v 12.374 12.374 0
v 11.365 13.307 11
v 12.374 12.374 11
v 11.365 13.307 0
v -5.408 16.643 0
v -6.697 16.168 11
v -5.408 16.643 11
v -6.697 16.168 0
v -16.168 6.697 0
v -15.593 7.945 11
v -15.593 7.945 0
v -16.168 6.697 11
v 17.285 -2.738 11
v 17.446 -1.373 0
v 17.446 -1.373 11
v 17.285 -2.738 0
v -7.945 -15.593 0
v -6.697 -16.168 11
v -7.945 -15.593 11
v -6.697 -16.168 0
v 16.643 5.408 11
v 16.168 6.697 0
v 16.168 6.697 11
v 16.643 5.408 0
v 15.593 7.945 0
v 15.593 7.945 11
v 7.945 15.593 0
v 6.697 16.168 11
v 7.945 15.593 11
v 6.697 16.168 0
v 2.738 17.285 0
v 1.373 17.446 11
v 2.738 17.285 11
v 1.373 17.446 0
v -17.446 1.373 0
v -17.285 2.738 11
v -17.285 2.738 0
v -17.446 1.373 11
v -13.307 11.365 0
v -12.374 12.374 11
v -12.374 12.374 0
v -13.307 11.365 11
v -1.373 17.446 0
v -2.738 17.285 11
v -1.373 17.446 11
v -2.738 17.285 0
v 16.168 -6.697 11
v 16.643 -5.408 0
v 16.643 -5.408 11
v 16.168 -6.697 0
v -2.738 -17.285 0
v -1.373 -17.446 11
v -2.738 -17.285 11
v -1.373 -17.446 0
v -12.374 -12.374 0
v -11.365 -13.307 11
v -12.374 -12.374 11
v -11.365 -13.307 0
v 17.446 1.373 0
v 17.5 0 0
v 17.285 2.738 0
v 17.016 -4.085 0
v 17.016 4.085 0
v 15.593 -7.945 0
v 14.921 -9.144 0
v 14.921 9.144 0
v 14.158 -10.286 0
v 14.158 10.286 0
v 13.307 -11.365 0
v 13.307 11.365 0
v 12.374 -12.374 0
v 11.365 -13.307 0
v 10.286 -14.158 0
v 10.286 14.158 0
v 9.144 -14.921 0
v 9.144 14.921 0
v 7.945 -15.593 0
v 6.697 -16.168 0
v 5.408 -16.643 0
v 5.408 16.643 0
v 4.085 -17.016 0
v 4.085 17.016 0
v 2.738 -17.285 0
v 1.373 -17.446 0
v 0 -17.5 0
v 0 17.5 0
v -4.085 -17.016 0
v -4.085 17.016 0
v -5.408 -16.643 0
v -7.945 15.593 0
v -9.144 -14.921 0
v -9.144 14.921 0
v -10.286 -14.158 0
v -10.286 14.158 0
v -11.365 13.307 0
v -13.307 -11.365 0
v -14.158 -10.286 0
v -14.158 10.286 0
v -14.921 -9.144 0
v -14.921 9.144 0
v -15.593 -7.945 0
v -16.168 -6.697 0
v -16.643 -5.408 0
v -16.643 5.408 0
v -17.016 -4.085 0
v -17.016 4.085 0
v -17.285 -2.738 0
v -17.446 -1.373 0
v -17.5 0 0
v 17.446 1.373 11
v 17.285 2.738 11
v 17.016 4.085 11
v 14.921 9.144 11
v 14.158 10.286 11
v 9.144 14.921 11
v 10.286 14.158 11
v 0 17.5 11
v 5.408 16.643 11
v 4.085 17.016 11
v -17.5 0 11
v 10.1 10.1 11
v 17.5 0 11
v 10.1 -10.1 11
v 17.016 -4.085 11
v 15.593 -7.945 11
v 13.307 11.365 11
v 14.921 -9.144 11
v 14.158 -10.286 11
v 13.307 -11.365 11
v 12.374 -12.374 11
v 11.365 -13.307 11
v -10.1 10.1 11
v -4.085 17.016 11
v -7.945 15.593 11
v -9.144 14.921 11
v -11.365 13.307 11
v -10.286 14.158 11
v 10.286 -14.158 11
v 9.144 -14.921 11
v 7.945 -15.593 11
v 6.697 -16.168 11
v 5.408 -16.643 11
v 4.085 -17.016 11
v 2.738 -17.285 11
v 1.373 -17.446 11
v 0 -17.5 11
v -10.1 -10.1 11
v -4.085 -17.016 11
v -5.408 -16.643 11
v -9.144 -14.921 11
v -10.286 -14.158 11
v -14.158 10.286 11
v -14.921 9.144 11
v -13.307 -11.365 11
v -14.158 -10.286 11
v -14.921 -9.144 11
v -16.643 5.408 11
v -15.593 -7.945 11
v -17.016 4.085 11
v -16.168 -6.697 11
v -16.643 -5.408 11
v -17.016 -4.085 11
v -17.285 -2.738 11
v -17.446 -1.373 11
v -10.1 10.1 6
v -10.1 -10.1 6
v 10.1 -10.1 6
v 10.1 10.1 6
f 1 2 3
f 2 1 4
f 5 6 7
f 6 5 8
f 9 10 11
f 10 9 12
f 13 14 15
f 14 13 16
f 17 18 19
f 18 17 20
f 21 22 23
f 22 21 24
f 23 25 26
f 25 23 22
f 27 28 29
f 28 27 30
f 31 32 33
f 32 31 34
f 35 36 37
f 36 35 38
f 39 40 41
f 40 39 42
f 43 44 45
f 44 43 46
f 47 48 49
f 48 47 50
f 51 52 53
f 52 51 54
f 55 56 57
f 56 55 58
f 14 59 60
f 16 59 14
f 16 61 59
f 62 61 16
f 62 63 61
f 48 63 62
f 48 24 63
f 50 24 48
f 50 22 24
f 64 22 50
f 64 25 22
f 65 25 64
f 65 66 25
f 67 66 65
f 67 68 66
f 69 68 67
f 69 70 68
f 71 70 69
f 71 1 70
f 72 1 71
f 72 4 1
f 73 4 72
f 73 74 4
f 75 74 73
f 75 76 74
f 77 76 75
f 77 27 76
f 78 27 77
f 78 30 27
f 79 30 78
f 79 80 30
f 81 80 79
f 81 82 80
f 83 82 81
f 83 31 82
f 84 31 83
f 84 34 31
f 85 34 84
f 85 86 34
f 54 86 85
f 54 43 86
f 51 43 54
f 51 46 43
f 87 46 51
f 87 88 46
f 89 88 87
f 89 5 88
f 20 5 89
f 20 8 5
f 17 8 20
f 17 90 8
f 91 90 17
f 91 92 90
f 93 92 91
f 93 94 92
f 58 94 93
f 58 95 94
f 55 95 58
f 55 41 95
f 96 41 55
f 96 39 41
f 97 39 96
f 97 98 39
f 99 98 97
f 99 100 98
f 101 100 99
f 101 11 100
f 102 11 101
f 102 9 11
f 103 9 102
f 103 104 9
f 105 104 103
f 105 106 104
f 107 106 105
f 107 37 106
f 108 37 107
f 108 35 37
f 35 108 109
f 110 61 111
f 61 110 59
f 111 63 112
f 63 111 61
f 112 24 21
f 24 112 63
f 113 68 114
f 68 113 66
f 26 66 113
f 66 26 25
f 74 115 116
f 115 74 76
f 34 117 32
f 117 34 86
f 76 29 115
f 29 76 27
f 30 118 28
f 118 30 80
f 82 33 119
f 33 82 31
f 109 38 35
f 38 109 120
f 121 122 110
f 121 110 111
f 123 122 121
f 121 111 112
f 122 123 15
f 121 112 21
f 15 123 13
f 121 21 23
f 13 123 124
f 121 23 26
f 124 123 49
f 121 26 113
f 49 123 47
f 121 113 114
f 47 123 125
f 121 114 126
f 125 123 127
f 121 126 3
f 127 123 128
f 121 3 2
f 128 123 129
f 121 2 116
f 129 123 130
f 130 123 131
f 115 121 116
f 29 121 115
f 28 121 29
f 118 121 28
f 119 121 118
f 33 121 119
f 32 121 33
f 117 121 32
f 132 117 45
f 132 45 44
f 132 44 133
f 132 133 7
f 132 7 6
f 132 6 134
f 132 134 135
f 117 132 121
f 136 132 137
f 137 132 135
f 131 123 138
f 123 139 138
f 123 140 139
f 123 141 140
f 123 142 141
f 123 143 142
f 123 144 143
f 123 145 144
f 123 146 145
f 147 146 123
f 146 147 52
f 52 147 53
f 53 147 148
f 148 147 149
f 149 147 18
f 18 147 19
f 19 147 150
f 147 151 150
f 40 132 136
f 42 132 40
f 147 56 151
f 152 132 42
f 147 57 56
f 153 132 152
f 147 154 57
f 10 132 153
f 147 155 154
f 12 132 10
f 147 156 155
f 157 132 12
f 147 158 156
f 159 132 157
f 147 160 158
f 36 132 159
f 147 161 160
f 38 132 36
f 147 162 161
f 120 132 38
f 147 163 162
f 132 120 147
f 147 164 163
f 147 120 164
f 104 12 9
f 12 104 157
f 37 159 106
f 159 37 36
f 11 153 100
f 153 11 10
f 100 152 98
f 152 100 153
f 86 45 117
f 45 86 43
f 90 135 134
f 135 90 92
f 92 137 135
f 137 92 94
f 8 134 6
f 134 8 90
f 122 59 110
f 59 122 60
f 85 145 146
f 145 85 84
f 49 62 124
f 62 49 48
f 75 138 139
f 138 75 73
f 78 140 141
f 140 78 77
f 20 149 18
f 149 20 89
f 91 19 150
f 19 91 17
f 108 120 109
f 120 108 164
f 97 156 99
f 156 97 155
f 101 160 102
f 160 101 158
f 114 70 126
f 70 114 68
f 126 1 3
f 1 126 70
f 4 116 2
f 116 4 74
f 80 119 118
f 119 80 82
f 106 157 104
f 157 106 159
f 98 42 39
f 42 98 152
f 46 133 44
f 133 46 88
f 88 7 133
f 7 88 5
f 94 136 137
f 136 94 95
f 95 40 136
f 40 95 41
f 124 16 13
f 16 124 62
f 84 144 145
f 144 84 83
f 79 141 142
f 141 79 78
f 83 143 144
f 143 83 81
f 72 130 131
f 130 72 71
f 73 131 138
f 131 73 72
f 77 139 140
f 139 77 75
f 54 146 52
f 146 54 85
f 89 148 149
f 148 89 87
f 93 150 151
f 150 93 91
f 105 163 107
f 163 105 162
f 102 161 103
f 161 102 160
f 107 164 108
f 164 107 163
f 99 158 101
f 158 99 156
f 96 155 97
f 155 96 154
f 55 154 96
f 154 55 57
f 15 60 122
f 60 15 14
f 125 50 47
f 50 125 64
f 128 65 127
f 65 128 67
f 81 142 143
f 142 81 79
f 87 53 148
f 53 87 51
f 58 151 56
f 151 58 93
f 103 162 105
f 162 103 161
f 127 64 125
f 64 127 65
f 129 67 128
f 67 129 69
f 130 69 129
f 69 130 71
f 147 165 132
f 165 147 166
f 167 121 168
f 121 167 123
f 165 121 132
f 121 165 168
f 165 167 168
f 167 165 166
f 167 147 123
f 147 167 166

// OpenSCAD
// file: _params.scad
// =========================================================================
// 공유 파라미터 (모든 개별 부품 파일에서 include)
// 메인 어셈블리: cup_z_x_catrage_frame_water_mic_anti_3030.scad 에서 추출
// 프레임: 600 × 420 × 700mm (3030 프로파일, Y=0 대칭)
// =========================================================================

$fn = 60;  // 부품 출력용 고해상도
GLOBAL_TOLERANCE = 0.2;

// --- [1] 하부 기성품 및 원통 파라미터 ---
X_RAIL_LEN = 290.0;
X_BLOCK_W = 30.0; X_BLOCK_L = 32.0;   // 신규 X슬라이더 블록 (폭 30mm × 길이 32mm)
X_PITCH_X = 20.0; X_PITCH_Y = 20.0;   // 체결 홀 피치 (20 × 20mm, M3 나사탭 4개)
X_RAIL_W = 30.0;  X_RAIL_H = 20.0;   // 레일 폭 30mm (레일 바닥~블록 윗면 높이 29mm 반영)
X_TOTAL_H = 29.0;                    // 레일 바닥에서 슬라이더 블록 윗면까지의 높이

MOTOR_W = 42.0;      MOTOR_PITCH = 31.0; MOTOR_HOLE_D = 3.5;    
MOTOR_BOSS_D = 22.0; MOTOR_BOSS_H = 2.0; SCREW_D = 8.0;         
MOT_BODY_L = 41.0;   SHAFT_L = 24.0;     // 실측 NEMA17 몸통 41mm / 축 돌출 24mm

CUP_ID = 99.5;  CUP_WALL = 5.0; CUP_OD = 110.0;     // 아크릴 원통 OD110/ID100
CUP_H = 180.0;   CAGE_H = 60.0;  FLOOR_H = 10.0; PISTON_H = 20.0;     

LIP_D = 30.0;    LIP_H = 5.0;    LEAK_DRAIN_D = 4.0;    
GUIDE_PIPE_D = 8.0; BUSHING_OD = 12.0; BUSHING_H = 8.0;       
DRAIN_RADIUS = 35.0; DRAIN_D = 8.0;        

Y_OFFSET = 85.0; BRKT_H = 12.0; BRKT_D = 122.0; BRKT_ID = 62.0; Z_MOUNT_PCD = 86.0;   

// --- [2] 아크릴 파이프 및 상부 카트리지 ---
ACRYL_ID = 100.0; ACRYL_T = 5.0; ACRYL_OD = ACRYL_ID + (ACRYL_T * 2);  // OD110 (아크릴집 106 재고없음 → 컵과 동일 규격)

REVOLVER_PCD = 240.0;     // 인접 카트리지 웹 9.8mm 확보 (OD110 대응, 230→240)
CARTRIDGE_OD = REVOLVER_PCD + ACRYL_OD + 8; 
TOP_PLATE_H = 15.0;       // 아크릴 15T 통판 (보스홀 단 깊이 10mm)

HUB_D = 60.0;            
SHAFT_D = 12.0;          
HUB_WALL = 4.0;          
HUB_H = 15.0;             // 아크릴 5T × 3장 적층 — 파이프 130mm 대응
POCKET_DEPTH = 5.0;
MID_HUB_Z = 63.5;          // 중단 허브 하면 Z (벨트 중심 Z=71.0mm 정렬, 풀리 상단 Z=75.0mm = 축상단-1mm)
UPPER_HUB_Z = 135.0;       // 상단 허브 하면 Z (전체 135+15=150 유지)
BOSS_OD = 35.0;
BOSS_H = 11.0;             // 보스11 + 와셔1 = 12, 리세스10 → 허브 2mm 공중

// --- [3] GT2 벨트 구동 시스템 ---
GT2_PITCH     = 2.0;
GT2_BELT_W    = 6.0;
BIG_PULLEY_TEETH = 566;
BIG_PULLEY_PD = BIG_PULLEY_TEETH * GT2_PITCH / PI;
BIG_PULLEY_OD = BIG_PULLEY_PD + 1.0;
SMALL_PULLEY_TEETH = 20;
SMALL_PULLEY_PD = SMALL_PULLEY_TEETH * GT2_PITCH / PI;
SMALL_PULLEY_OD = SMALL_PULLEY_PD + 1.0;

BELT_MOTOR_X = -300;
BELT_MOTOR_Y = -155.5;
BRKT_MOTOR_H = 25.0;
BRKT_MOTOR_W = 45.0;        // 브래킷 폭 45mm (프로파일 간섭 회피 복원)
SLOT_LEN = 10.0;
FLAG_W = 15.0;  FLAG_H = 8.0;  FLAG_T = 1.5;

X_POS_MEASURE = 170.0;   // 측정 브래킷 X좌표 (X_M~X_R 정중앙, X대칭)

// --- [4] 3030 프레임 경계 (600×430×700mm) ---
PF = 30;             // 3030 알루미늄 프로파일
WASHER_T = 1.0;     

X_L = -320;
X_M = 60;
X_R = 250;
Y_F = -210;          // 전방 (대칭: -210+30=-180, Y=0 중심)
Y_B = 180;           // 후방 (대칭: 180+30=210, Y=0 중심) — 메인파일과 동기화

Z_BOT = -480;
Z_RAIL = -322;
Z_MID = -TOP_PLATE_H - PF;
Z_TOP = 220;

SUPPORT_PILLAR_H = Z_TOP - PF;

SHAFT_SQ = 20;       // 2020 사각 회전축

// 사각 축 홀 크기
SQ = SHAFT_SQ + GLOBAL_TOLERANCE;  // 20.2mm

// --- 리볼버/컵 축 정렬 (보스홀=판 중심에 리볼버 정렬) ---
REVOLVER_CX = (X_L + X_M + PF)/2;        // 판 중심 = 보스홀 = 리볼버 회전축 (-115)
DROP_X      = REVOLVER_CX + REVOLVER_PCD/2;  // 링 드롭 / 컵 적재 축 (+5)

FLANGE_Z = 52.0;       // 모터 전면 안착 높이 (Z=52mm -> 축 상단 Z=76mm, 풀리 결합)

// --- [5] 모터 체결홀 (이미 제작 완료된 15T 상판 원본 도면 수치 100% 유지) ---
MOTOR_BOLT_PITCH     = 25.0;      // Y피치 (Y = ±12.5mm)
MOTOR_BOLT_X_NOMINAL = X_L + 55;  // 1열: 상판 좌단 55 (모터축 기준 +35mm = X=-265mm)
MOTOR_BOLT_X_SHIFT   = X_L + 40;  // 2열: 상판 좌단 40 (모터축 기준 +20mm = X=-280mm)

// 모터 마운트 볼트 카운터보어 (단볼트용 — 브래킷 두께 25 중 깊게 파냄)
MOTOR_CB_D     = 6.5;            // M3 캡볼트 머리 클리어런스
MOTOR_CB_DEPTH = 19;             // 카운터보어 깊이 (잔여 통과 6mm → M3×10 단볼트)
// main file
// =========================================================================
// [부품] 하단 허브 보스 (Lower Hub Boss) - 3D 프린트용
// 용도: 하단 허브 아크릴 레이저 가공 시 누락된 하단 보스 부분을 3D 프린터로 제작하여 부착
// 축 일치 정렬을 위해 5mm 깊이의 2020 프로파일(사각 축) 소켓이 있고, 나머지는 막혀 있는 구조
// 원점: 보스 하면 Z=0, 중심 = XY 원점
// =========================================================================
include <_params.scad>

// 외경: BOSS_OD (35mm)
// 높이: BOSS_H (11mm)
// 축 소켓 깊이: 5mm (나머지 6mm는 솔리드)

difference() {
    // 메인 원통
    cylinder(d=BOSS_OD, h=BOSS_H, $fn=80);
    
    // 사각 축 소켓 (정렬용, 2020 프로파일용)
    // 상면(Z = BOSS_H)에서 5mm 깊이만큼 파냄 (Z = BOSS_H - 5 ~ BOSS_H)
    translate([-SQ/2, -SQ/2, BOSS_H - 5])
        cube([SQ, SQ, 5.1]);
}
